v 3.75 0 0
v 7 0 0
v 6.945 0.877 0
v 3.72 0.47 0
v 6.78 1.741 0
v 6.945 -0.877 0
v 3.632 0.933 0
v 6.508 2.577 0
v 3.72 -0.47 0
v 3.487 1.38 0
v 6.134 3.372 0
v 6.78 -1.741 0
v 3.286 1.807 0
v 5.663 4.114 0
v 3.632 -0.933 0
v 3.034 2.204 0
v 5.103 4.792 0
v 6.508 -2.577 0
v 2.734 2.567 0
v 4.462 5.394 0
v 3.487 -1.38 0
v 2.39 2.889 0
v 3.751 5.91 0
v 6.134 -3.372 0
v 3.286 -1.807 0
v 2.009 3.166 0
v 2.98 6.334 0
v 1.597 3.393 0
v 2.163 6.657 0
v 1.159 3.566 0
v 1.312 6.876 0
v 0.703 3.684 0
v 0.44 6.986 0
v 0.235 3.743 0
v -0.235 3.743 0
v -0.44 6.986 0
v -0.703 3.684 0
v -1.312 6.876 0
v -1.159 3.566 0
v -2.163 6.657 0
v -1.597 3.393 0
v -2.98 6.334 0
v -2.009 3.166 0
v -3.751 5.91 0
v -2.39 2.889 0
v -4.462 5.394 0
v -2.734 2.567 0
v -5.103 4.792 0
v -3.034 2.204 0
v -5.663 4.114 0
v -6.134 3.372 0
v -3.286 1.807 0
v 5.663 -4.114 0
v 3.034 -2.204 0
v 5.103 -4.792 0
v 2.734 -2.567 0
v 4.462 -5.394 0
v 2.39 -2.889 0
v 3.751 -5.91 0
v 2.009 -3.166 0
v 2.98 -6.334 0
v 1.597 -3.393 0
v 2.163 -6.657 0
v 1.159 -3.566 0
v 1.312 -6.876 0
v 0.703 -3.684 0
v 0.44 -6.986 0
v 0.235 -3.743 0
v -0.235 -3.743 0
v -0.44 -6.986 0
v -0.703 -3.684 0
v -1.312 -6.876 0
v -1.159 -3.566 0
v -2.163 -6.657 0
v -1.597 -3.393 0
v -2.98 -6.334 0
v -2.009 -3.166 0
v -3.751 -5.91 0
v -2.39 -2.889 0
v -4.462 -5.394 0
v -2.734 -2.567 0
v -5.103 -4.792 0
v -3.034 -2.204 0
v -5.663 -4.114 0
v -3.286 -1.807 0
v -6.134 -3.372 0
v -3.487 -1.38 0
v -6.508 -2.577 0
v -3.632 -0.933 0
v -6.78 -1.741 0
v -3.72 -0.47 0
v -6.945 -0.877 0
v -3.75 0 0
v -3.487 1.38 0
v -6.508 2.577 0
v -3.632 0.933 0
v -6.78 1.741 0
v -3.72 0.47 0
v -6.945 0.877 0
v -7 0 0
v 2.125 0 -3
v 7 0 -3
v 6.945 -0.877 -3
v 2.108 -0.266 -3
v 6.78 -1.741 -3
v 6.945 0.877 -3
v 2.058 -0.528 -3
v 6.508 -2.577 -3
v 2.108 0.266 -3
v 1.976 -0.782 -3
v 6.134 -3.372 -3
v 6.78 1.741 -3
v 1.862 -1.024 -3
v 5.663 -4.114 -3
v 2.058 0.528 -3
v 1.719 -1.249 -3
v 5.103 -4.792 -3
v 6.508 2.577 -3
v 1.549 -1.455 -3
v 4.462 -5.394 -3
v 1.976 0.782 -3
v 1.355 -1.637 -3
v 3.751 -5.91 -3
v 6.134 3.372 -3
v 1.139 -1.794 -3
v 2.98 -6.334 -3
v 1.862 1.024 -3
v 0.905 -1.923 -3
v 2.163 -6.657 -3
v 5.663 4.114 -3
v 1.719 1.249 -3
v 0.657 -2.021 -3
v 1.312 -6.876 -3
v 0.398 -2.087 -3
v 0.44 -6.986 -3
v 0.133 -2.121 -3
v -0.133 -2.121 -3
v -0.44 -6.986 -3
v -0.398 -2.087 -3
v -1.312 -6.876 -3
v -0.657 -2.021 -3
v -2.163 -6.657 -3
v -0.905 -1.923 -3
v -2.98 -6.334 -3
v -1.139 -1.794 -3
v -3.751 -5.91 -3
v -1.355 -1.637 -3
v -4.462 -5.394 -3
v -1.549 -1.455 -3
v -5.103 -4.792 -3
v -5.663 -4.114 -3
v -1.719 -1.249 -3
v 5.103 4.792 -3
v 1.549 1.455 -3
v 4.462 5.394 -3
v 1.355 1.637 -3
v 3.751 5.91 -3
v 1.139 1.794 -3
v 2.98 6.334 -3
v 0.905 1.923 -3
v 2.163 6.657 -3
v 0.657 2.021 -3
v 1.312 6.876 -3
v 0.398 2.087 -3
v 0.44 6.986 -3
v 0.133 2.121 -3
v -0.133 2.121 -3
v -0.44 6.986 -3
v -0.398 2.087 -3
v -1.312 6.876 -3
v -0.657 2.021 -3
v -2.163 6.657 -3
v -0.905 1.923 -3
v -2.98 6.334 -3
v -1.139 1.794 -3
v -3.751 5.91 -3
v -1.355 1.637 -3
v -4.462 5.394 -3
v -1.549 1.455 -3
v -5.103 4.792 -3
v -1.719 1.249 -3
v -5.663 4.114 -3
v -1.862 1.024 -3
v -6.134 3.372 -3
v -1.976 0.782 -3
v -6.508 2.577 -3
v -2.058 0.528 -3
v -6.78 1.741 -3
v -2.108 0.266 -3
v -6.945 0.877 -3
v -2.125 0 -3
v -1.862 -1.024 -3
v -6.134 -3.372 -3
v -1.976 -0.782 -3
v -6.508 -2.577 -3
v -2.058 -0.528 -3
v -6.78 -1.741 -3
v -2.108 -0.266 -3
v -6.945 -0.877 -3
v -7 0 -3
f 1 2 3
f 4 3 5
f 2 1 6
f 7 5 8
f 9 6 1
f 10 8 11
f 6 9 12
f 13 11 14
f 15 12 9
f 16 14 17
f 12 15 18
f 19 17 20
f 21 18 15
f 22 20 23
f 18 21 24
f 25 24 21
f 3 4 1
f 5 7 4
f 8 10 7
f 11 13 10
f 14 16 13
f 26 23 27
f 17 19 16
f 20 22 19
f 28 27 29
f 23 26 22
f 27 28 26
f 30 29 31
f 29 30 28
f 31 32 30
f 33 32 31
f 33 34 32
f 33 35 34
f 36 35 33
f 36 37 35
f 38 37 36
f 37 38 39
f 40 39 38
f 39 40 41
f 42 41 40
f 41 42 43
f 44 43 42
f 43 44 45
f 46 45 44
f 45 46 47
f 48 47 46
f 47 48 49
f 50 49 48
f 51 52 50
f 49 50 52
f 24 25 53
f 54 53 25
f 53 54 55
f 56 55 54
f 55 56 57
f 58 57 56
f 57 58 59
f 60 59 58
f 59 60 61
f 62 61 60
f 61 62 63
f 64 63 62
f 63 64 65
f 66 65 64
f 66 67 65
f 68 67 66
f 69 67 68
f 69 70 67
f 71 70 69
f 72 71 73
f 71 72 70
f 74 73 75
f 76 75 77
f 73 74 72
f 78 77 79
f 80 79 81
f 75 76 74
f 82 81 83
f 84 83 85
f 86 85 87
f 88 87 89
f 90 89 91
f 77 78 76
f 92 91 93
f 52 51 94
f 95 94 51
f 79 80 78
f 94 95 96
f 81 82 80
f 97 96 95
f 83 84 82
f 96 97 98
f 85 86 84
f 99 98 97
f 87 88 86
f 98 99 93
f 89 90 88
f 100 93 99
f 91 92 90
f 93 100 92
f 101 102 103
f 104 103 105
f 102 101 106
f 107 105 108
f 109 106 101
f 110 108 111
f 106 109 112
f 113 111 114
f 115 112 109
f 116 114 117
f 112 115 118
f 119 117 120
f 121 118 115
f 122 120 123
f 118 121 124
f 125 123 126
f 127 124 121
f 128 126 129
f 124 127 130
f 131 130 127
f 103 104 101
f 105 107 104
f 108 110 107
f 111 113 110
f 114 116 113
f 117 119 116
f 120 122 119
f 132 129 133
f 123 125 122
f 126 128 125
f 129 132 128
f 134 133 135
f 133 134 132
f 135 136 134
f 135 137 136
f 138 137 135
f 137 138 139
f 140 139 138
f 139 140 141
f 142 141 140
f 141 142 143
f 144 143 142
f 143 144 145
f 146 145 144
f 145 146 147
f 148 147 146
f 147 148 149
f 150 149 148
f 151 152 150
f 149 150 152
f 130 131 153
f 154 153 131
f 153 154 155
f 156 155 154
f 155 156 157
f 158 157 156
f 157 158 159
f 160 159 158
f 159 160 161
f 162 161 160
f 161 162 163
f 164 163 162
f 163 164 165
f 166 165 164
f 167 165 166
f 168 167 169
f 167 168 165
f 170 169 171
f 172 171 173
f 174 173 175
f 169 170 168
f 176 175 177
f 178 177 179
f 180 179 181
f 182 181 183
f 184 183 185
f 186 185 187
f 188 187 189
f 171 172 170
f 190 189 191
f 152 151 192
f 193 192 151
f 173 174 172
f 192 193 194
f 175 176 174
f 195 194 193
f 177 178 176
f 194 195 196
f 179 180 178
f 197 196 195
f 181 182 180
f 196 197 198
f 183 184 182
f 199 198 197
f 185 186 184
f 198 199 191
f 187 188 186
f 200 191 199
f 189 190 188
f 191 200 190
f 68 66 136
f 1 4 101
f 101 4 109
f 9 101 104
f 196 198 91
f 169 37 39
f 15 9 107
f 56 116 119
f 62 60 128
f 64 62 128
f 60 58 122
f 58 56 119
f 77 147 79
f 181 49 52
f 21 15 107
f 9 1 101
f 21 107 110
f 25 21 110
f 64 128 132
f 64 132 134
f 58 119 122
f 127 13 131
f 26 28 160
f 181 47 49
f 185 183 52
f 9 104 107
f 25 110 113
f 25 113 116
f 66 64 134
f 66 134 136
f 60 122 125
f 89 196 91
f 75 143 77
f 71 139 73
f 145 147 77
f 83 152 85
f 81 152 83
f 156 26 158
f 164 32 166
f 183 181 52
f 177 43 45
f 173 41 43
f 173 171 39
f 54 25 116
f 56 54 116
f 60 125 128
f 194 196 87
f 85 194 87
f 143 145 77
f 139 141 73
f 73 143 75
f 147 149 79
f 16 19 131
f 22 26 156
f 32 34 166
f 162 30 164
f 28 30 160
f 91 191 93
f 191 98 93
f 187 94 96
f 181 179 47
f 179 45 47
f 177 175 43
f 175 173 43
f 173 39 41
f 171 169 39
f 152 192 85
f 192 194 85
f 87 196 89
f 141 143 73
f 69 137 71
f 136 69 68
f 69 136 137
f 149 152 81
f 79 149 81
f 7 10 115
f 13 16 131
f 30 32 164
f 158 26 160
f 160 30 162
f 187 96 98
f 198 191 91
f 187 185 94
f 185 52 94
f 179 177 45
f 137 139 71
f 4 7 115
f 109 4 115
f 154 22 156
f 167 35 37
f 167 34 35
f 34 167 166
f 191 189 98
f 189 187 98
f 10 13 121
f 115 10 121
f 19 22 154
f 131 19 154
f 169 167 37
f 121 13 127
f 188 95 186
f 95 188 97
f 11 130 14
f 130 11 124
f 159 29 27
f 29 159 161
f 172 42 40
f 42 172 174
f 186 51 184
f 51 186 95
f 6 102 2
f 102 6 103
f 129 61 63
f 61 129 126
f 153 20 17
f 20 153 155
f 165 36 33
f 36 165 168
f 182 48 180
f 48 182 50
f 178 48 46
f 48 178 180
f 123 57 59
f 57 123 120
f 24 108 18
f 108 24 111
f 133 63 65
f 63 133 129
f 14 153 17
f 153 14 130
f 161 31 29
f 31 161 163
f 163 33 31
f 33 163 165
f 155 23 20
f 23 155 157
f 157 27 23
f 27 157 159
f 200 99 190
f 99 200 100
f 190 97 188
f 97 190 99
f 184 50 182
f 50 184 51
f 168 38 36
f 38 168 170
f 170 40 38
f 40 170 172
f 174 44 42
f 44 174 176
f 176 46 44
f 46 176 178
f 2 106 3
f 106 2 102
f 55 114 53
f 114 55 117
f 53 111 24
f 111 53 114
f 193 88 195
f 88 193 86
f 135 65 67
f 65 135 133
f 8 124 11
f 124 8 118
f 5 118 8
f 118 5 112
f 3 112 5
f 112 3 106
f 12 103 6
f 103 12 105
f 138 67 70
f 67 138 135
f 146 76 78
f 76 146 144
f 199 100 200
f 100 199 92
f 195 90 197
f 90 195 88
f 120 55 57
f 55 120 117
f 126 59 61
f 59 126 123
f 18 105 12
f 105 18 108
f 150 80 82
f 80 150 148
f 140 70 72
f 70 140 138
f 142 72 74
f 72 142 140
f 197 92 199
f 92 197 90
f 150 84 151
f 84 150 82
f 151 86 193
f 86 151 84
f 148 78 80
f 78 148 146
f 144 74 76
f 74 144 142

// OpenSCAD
$fn = 50;


difference() {
	union() {
		translate(v = [0, 0, -3.0000000000]) {
			cylinder(h = 3, r = 7.0000000000);
		}
		cylinder(h = 0, r = 13.0000000000);
	}
	union() {
		translate(v = [0, 0, 0]) {
			rotate(a = [0, 0, 0]) {
				difference() {
					union() {
						#translate(v = [0, 0, -3.0000000000]) {
							cylinder(h = 3, r = 2.0000000000);
						}
						#translate(v = [0, 0, -3]) {
							cylinder(h = 3, r1 = 2.1250000000, r2 = 3.7500000000);
						}
						#translate(v = [0, 0, -3.0000000000]) {
							cylinder(h = 3, r = 2.1250000000);
						}
						#translate(v = [0, 0, -3.0000000000]) {
							cylinder(h = 3, r = 2.0000000000);
						}
					}
					union();
				}
			}
		}
	}
}
